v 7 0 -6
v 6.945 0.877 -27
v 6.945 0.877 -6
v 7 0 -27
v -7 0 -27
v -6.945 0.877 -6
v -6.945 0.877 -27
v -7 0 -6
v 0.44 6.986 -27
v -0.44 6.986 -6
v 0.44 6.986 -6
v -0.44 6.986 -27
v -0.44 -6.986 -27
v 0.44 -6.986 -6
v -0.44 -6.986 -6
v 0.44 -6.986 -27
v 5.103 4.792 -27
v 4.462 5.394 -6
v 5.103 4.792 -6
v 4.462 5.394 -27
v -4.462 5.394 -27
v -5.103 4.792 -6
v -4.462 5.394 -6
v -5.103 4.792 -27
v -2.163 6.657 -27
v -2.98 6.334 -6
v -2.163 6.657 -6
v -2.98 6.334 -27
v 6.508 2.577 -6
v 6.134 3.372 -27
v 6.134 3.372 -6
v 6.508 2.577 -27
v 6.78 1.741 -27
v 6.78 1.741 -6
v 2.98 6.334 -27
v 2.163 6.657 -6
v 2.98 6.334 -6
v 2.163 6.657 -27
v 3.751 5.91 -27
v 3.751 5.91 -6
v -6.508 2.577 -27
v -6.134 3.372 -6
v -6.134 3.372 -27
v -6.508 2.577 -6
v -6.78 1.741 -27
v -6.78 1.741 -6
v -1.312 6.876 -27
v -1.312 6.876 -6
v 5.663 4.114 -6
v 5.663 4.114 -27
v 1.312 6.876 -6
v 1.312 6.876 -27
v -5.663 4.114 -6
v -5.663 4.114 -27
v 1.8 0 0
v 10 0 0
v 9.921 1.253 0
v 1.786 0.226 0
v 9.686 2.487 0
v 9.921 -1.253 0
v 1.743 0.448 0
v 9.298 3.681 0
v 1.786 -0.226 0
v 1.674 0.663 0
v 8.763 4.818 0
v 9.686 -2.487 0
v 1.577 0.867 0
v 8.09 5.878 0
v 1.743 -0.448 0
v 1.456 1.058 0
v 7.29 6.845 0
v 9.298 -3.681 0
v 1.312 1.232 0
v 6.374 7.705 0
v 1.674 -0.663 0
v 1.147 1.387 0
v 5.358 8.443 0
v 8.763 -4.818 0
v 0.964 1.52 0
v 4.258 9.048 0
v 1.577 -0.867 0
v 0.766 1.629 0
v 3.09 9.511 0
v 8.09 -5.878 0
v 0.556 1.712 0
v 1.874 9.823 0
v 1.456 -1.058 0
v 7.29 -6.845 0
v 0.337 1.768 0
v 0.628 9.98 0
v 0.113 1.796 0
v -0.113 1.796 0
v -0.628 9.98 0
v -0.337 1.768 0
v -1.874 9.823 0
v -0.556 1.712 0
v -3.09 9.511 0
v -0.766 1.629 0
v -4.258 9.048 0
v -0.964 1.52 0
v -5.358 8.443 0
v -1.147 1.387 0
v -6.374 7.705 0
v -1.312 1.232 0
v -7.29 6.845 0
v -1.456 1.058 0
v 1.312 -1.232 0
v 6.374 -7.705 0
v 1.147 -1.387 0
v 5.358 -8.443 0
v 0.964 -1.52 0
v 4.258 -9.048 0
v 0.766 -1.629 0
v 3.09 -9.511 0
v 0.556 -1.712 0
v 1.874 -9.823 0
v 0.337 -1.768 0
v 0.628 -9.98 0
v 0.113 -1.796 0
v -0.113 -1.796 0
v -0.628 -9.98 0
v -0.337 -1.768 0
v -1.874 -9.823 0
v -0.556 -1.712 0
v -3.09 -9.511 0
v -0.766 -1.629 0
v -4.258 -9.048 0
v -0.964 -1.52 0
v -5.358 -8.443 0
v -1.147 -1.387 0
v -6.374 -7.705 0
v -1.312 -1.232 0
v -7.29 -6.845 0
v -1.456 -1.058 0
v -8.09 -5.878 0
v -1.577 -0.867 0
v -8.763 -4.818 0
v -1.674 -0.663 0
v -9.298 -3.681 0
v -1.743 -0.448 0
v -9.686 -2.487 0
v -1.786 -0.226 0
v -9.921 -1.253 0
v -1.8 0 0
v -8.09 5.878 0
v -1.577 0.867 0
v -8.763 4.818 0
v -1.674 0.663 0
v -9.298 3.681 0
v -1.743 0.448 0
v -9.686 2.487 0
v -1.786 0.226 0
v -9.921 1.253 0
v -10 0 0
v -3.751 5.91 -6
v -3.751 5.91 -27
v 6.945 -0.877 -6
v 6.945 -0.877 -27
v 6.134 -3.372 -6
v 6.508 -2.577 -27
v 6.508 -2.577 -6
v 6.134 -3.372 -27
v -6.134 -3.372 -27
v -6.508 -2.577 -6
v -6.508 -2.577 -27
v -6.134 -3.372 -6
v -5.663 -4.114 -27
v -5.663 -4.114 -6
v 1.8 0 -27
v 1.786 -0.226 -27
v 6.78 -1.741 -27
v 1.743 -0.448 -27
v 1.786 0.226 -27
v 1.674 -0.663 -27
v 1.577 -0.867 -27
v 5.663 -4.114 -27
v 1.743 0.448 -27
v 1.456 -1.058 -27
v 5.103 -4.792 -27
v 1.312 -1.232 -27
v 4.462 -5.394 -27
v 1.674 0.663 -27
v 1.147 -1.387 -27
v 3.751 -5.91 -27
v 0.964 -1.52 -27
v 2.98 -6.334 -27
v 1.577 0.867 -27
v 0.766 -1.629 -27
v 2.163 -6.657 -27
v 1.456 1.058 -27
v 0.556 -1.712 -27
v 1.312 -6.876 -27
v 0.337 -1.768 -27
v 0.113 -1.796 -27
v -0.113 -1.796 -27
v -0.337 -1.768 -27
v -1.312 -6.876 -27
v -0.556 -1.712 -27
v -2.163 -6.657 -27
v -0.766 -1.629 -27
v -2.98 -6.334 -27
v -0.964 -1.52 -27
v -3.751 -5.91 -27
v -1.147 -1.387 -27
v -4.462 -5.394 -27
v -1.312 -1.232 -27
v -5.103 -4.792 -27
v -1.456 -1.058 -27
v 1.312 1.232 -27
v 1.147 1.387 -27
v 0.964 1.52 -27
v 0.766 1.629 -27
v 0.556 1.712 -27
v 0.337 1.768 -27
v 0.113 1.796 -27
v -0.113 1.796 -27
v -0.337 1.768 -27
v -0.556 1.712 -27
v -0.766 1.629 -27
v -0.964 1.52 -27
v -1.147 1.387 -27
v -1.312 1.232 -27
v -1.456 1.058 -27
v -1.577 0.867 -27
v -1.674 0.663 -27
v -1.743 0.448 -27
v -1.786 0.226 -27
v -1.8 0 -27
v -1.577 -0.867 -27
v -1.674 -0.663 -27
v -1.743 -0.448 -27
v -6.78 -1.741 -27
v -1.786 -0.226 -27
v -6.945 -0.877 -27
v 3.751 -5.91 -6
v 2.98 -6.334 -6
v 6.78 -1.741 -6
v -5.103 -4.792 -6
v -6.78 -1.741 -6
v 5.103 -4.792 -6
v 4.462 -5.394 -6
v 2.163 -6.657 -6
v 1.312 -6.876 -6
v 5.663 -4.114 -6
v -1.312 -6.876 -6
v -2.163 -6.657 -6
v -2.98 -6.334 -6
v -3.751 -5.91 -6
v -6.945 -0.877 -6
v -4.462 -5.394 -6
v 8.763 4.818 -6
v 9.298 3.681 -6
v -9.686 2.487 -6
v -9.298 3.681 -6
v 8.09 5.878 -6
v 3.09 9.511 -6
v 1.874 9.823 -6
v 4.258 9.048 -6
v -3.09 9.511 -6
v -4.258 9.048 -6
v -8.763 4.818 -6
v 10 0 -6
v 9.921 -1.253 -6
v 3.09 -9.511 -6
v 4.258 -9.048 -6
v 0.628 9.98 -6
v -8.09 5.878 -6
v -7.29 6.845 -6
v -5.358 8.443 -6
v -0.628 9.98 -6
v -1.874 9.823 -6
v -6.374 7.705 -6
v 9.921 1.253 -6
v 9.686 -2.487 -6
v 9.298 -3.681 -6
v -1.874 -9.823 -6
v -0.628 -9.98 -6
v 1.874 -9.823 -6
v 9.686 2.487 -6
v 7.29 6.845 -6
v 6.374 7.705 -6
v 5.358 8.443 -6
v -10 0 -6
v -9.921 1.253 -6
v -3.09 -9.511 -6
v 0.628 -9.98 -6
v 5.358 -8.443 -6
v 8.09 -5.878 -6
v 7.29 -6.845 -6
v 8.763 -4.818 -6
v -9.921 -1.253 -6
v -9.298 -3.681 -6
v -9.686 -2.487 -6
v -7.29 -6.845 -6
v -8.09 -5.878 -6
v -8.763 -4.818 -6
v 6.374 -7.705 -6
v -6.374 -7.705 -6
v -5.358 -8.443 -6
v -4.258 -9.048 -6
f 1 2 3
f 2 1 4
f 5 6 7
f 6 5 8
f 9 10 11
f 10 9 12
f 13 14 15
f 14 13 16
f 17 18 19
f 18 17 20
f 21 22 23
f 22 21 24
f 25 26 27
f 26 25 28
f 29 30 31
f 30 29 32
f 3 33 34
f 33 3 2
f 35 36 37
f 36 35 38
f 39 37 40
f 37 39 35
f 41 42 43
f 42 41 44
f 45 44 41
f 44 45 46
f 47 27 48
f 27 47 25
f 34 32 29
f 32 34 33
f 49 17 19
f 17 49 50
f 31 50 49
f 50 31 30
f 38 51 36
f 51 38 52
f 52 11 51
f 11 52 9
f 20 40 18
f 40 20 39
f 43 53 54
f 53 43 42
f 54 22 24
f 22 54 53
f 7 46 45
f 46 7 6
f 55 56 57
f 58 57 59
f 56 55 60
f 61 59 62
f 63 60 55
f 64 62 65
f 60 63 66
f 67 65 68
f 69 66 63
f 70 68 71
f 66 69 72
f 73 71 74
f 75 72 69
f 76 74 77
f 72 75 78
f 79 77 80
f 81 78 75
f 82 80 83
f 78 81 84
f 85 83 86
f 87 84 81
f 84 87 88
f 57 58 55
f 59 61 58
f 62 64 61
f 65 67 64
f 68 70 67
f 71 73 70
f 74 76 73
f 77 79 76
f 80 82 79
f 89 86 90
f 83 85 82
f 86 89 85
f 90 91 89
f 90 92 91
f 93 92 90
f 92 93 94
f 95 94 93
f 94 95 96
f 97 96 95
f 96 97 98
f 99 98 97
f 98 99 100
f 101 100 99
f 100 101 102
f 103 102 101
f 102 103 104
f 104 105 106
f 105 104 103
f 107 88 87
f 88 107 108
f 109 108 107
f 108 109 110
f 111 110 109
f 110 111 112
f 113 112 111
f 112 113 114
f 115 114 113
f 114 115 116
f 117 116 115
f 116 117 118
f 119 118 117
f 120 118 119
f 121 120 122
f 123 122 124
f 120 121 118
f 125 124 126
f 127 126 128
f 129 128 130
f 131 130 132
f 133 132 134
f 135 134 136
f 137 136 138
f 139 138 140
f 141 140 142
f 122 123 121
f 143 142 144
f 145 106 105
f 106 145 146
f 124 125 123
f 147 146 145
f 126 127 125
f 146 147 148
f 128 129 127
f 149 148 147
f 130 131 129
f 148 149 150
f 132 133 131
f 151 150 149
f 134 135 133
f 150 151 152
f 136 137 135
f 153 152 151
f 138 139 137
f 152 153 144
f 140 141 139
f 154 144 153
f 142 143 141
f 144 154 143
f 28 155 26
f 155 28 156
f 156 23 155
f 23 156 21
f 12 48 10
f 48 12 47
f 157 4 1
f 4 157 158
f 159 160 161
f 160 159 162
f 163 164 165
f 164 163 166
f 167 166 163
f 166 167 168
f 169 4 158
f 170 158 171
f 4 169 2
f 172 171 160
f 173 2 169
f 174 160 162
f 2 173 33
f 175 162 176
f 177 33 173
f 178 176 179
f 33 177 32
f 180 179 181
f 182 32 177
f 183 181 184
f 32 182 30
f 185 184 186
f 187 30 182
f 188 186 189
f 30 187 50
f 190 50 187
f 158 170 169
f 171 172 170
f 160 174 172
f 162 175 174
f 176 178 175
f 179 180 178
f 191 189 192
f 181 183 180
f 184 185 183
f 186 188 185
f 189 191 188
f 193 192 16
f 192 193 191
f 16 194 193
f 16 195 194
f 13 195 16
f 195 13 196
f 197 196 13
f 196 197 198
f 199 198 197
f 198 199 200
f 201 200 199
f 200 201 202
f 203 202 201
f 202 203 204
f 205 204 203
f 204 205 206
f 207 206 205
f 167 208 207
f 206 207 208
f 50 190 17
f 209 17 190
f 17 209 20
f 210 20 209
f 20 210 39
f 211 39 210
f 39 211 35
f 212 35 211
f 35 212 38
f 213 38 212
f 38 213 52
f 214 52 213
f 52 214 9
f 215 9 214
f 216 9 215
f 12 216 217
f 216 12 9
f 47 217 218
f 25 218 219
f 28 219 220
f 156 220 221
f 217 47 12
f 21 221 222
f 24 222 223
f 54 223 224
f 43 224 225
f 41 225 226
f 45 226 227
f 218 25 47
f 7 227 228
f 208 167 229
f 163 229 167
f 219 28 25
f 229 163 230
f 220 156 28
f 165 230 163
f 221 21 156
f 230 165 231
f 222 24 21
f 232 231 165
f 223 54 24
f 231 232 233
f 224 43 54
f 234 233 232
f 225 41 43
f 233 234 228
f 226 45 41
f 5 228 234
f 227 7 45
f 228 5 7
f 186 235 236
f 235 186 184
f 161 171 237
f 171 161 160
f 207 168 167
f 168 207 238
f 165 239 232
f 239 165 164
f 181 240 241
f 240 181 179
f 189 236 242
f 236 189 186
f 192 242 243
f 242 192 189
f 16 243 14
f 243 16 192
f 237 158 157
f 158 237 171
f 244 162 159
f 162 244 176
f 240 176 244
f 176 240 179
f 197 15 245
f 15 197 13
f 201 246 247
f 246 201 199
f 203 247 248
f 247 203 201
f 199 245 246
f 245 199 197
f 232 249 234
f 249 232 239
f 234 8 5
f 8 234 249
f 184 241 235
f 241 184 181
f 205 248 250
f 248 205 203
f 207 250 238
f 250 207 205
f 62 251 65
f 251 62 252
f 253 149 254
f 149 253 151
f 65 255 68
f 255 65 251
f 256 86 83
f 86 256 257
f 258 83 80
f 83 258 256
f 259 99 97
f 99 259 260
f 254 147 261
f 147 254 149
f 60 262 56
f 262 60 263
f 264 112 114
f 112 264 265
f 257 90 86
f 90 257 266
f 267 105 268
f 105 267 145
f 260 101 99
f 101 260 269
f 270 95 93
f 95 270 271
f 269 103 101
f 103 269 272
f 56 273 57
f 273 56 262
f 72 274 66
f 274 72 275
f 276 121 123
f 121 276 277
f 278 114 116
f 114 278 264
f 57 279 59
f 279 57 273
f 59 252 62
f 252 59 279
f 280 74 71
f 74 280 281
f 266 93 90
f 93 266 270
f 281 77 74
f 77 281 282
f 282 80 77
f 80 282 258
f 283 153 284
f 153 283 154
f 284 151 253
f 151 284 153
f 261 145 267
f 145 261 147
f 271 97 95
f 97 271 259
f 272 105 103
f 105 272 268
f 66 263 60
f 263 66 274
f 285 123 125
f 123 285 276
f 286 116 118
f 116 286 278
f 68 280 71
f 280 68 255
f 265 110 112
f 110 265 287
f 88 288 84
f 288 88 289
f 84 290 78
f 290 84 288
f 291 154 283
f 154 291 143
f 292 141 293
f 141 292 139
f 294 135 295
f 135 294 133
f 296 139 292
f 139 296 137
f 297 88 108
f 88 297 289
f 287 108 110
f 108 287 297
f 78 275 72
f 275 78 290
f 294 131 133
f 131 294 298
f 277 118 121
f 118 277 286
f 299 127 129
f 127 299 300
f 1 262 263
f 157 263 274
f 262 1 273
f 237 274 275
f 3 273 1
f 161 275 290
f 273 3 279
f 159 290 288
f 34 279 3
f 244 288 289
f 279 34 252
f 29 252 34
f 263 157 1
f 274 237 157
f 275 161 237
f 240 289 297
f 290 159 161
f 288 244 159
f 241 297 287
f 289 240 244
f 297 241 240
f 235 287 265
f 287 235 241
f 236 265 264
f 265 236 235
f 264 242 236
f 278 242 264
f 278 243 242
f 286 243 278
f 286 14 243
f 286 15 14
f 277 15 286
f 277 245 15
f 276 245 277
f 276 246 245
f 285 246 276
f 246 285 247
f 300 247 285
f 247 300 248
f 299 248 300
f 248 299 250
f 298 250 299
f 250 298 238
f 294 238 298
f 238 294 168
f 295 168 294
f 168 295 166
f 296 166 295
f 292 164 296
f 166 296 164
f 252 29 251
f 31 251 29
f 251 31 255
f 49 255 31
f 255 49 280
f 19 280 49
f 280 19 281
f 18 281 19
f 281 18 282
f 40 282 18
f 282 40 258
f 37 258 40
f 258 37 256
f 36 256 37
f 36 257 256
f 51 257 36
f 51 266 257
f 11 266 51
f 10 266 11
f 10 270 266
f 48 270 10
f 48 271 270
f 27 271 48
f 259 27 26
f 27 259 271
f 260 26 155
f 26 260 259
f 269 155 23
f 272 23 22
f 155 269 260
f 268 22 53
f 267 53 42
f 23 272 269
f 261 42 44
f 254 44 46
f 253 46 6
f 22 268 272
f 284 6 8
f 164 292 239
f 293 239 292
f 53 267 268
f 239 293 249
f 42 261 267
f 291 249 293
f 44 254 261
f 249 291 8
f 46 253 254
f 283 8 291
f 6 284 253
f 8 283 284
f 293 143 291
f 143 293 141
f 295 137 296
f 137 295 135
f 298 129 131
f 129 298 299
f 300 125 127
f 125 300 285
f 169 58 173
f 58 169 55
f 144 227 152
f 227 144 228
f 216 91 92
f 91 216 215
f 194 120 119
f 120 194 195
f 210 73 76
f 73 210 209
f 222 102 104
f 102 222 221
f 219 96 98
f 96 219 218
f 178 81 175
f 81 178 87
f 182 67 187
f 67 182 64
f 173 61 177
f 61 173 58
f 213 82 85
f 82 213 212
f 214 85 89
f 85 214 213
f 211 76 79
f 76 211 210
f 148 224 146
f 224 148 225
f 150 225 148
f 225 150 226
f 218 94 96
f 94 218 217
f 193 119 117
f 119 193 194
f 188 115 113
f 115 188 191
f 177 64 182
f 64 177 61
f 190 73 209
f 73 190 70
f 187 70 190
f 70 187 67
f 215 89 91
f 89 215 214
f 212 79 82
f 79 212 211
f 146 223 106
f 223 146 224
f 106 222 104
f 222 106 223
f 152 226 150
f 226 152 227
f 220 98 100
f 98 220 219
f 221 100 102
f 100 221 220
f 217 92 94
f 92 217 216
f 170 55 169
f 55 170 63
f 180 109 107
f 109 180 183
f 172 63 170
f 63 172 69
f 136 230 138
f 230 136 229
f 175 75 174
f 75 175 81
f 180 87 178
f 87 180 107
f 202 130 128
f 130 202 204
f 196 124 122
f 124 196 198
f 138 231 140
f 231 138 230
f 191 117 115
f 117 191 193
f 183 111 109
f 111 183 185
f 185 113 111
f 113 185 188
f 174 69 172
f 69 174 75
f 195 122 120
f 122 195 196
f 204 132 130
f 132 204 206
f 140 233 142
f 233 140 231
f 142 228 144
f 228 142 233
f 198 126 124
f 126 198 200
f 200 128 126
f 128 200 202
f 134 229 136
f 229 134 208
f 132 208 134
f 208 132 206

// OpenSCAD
$fn = 50;


difference() {
	union() {
		translate(v = [0, 0, -27.0000000000]) {
			cylinder(h = 27, r = 7.0000000000);
		}
		translate(v = [0, 0, -6.0000000000]) {
			cylinder(h = 6, r = 10.0000000000);
		}
	}
	union() {
		#translate(v = [0, 0, -27]) {
			cylinder(h = 27, r = 1.8000000000);
		}
	}
}
